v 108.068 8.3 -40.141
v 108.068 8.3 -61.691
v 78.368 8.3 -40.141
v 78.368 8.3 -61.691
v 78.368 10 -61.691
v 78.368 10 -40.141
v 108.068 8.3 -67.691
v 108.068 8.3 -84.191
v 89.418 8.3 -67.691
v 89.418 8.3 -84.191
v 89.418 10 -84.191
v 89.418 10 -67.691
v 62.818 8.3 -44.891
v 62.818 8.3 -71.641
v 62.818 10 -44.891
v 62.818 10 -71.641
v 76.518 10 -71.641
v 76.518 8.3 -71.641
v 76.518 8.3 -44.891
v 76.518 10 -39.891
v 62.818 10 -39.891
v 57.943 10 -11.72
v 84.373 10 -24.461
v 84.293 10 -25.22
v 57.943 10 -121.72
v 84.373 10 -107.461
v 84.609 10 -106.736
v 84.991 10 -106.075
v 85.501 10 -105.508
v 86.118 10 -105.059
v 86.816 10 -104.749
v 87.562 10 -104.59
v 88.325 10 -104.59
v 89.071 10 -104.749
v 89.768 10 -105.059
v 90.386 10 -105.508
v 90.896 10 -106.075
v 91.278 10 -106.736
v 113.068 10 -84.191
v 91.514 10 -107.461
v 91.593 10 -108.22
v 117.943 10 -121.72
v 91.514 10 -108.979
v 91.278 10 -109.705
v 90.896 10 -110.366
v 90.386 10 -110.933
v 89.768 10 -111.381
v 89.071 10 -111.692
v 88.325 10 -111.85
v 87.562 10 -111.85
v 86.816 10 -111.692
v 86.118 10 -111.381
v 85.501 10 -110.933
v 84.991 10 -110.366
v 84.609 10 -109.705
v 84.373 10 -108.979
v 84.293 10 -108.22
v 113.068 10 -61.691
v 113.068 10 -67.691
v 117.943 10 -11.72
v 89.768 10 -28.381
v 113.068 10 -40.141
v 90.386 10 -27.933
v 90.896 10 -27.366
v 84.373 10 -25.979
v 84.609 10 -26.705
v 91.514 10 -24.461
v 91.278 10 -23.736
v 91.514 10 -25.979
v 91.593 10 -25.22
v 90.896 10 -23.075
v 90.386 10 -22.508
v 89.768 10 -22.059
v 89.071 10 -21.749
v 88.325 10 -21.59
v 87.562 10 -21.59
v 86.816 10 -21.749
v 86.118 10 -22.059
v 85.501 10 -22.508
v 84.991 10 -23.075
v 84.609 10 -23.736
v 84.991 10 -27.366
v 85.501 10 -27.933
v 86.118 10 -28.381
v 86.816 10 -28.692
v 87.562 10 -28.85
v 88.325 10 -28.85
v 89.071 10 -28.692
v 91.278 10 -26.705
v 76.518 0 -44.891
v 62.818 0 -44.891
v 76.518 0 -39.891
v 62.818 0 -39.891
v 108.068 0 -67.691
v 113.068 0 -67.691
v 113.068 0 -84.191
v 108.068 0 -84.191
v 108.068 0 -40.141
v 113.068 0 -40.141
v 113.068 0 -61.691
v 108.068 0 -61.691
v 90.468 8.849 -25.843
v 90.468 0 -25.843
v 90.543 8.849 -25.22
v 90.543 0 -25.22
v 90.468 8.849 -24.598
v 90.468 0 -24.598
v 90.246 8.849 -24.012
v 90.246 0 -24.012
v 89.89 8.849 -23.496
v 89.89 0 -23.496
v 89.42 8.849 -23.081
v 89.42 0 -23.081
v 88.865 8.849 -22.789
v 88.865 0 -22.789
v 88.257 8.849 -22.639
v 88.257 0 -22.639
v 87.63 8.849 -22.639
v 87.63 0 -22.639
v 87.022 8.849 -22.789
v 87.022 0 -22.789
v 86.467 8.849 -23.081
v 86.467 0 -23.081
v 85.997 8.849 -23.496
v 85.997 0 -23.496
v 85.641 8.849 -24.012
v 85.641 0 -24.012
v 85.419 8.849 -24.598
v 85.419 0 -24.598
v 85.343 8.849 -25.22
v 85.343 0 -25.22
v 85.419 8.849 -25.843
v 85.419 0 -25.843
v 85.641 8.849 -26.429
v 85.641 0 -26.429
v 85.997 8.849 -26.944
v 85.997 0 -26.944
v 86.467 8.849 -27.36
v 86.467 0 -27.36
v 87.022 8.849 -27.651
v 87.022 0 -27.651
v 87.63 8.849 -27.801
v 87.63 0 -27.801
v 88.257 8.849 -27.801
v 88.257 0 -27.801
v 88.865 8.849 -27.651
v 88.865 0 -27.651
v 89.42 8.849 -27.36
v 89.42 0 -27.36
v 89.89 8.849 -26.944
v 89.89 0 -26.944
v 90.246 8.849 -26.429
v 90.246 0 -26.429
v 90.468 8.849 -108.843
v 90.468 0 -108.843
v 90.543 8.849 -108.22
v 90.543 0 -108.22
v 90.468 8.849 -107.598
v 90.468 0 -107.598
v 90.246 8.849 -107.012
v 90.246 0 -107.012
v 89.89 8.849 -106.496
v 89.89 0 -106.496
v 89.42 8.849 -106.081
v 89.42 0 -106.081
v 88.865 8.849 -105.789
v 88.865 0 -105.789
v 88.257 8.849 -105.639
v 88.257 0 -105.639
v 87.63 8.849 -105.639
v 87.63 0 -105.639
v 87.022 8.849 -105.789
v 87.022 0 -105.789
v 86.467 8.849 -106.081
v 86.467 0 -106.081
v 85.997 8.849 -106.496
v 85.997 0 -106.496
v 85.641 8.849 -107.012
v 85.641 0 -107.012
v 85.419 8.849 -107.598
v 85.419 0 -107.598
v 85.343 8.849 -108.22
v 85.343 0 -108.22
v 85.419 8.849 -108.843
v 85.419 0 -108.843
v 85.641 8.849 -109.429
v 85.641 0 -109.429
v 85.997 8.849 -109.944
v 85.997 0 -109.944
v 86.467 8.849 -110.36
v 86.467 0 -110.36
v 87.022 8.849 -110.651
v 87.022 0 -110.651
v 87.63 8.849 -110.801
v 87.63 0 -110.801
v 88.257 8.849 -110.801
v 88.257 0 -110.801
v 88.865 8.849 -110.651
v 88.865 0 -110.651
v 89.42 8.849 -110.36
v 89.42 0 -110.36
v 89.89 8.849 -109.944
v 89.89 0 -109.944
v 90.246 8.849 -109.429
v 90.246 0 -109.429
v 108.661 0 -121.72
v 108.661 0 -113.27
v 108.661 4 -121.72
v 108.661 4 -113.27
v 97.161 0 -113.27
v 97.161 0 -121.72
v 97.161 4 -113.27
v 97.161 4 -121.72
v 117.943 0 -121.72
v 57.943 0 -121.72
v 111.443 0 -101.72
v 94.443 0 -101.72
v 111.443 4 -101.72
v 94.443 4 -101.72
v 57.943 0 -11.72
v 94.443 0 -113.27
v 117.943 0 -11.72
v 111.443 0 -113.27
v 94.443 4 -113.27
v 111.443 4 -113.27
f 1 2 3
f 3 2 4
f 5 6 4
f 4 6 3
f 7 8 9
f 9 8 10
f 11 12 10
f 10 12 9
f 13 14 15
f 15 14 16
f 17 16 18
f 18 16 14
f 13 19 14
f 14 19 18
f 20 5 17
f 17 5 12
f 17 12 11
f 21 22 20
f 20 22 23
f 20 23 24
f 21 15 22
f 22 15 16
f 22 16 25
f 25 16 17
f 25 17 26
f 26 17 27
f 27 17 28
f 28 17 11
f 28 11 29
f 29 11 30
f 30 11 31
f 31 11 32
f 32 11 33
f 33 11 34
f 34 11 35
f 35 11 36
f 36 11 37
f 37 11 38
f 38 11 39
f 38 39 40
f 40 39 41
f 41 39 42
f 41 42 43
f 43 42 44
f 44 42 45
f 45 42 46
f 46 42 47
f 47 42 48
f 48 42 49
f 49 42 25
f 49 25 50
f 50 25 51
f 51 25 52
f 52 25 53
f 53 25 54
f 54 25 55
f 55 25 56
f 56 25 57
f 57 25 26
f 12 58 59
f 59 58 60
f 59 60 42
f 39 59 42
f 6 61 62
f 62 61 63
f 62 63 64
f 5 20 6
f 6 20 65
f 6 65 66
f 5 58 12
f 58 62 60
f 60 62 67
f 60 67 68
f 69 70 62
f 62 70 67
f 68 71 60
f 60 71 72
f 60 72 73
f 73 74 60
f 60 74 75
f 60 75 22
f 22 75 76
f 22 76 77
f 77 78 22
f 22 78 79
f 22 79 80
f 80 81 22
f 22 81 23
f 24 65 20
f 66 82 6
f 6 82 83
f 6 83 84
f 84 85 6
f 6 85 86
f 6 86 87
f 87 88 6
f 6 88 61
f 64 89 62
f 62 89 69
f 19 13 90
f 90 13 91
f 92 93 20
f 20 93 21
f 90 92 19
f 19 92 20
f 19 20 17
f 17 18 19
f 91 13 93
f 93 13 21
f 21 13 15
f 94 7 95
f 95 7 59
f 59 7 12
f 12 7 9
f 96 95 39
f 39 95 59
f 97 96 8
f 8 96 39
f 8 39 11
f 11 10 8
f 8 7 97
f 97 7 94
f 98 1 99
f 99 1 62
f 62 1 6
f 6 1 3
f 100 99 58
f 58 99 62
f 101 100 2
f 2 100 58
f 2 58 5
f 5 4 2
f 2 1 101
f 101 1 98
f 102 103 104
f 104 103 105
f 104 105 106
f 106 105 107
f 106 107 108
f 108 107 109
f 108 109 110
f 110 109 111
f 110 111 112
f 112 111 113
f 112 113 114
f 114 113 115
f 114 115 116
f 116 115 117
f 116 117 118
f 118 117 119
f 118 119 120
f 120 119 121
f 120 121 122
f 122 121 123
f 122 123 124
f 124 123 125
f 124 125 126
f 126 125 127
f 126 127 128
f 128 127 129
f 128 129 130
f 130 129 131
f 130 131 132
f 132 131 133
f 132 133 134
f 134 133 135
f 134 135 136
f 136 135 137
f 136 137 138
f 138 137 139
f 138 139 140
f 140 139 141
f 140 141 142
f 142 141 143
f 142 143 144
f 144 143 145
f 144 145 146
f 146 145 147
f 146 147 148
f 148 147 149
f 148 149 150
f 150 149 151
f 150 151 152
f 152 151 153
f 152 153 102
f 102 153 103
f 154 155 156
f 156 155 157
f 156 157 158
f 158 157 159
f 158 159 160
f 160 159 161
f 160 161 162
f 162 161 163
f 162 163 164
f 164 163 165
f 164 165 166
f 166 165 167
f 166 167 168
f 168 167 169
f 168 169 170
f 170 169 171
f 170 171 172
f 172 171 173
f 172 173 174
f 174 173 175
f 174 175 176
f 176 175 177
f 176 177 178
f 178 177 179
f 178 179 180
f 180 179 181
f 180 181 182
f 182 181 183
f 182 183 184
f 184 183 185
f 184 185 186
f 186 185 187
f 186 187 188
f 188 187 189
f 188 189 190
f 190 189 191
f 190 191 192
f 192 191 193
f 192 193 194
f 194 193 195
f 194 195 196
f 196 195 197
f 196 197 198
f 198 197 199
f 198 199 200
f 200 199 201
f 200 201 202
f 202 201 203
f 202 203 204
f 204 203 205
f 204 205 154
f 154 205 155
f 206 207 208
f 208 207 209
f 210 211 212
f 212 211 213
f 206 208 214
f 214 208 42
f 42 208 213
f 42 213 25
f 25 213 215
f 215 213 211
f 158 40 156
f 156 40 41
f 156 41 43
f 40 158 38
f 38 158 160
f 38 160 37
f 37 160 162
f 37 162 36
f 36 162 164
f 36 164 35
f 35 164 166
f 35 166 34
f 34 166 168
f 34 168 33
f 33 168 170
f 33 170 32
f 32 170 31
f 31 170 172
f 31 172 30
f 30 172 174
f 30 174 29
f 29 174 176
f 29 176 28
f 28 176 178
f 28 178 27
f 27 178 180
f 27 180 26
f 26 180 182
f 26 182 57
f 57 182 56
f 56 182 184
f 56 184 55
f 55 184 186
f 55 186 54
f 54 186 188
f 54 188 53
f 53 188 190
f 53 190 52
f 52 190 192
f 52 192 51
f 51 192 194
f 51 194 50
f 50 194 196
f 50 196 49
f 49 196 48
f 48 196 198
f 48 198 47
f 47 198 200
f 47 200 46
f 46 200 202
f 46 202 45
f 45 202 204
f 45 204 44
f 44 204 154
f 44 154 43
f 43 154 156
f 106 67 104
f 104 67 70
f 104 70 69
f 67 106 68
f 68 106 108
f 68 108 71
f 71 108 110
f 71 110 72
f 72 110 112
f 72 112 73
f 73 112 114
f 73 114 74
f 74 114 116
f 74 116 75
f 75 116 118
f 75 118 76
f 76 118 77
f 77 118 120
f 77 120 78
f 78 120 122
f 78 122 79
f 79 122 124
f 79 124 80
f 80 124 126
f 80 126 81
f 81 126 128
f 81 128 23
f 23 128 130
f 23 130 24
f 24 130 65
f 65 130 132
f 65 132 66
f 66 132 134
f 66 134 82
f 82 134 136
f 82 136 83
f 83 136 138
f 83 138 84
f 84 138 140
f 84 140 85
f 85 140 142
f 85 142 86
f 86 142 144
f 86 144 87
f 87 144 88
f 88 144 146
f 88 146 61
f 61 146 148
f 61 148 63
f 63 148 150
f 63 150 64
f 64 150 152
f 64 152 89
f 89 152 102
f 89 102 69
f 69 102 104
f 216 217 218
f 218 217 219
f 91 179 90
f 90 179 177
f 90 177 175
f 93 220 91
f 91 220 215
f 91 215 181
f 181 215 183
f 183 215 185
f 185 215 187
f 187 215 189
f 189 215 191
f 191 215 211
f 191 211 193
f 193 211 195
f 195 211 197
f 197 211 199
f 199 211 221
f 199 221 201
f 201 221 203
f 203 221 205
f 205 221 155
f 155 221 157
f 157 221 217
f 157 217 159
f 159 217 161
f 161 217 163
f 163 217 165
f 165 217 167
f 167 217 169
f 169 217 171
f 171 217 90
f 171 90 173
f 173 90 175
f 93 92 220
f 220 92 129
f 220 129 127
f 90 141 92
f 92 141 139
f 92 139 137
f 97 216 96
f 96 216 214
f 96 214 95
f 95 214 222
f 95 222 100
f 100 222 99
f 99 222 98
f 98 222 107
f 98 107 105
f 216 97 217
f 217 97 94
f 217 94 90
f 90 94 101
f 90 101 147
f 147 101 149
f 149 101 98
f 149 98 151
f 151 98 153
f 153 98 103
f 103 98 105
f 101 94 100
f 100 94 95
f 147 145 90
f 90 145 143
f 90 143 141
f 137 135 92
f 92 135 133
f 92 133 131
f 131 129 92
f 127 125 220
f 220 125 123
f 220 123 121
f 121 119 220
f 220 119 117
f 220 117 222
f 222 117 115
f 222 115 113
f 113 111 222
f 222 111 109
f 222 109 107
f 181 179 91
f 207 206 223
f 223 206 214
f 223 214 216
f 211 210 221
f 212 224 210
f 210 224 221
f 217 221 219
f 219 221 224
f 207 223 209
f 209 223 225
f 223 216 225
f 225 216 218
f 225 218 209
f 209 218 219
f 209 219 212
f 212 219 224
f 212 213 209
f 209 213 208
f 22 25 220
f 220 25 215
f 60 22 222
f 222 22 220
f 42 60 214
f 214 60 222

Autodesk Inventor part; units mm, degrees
ref_plane "작업 평면1" through (0, 10, 0) normal (0, 1, 0) x (1, 0, 0)
sketch "스케치3" plane through (0, 10, 0) normal (0, 1, 0) x (1, 0, 0)
  line L0 (108.4435, 113.2704) -> (97.4435, 113.2704)
  line L1 (97.4435, 113.2704) -> (97.4435, 121.7204)
  line L2 (97.4435, 121.7204) -> (108.4435, 121.7204)
  line L3 (108.4435, 121.7204) -> (108.4435, 113.2704)
  line L4 (117.9435, 121.7204) -> (57.9435, 121.7204)
  line L5 (57.9435, 121.7204) -> (57.9435, 11.7204)
  line L6 (117.9435, 11.7204) -> (117.9435, 121.7204)
  line L7 (57.9435, 11.7204) -> (117.9435, 11.7204)
  line L8 (113.0685, 67.6907) -> (89.4185, 67.6907)
  line L9 (89.4185, 67.6907) -> (89.4185, 84.1907)
  line L10 (89.4185, 84.1907) -> (113.0685, 84.1907)
  line L11 (113.0685, 84.1907) -> (113.0685, 67.6907)
  line L12 (113.0684, 40.1407) -> (108.0685, 40.1407)
  line L13 (108.0685, 67.6907) -> (113.0685, 67.6907)
  line L14 (113.0684, 61.6907) -> (113.0684, 40.1407)
  line L15 (113.0685, 67.6907) -> (108.0685, 67.6907)
  line L16 (108.0685, 67.6907) -> (108.0685, 84.1907)
  line L17 (108.0685, 84.1907) -> (113.0685, 84.1907)
  line L18 (113.0685, 84.1907) -> (113.0685, 67.6907)
  line L19 (76.5185, 39.8907) -> (62.8185, 39.8907)
  line L20 (62.8185, 39.8907) -> (62.8185, 44.8907)
  line L21 (62.8185, 44.8907) -> (76.5185, 44.8907)
  line L22 (76.5185, 44.8907) -> (76.5185, 39.8907)
  line L23 (113.0684, 61.6907) -> (78.3675, 61.6907)
  circle A0 centre (87.9435, 25.2204) radius 2.6
  circle A1 centre (87.9435, 108.2204) radius 2.6
  line L24 (78.3675, 40.1407) -> (113.0684, 40.1407)
  line L25 (78.3675, 40.1407) -> (78.3675, 61.6907)
  line L26 (76.5185, 39.8907) -> (76.5185, 71.6407)
  line L27 (62.8185, 39.8907) -> (62.8185, 71.6407)
  line L28 (76.5185, 71.6407) -> (62.8185, 71.6407)
  line L29 (108.0685, 61.6907) -> (108.0685, 40.1407)
  point P0 (0, 0)
  dimension "d8" = 9.5
  dimension "d46" = 5.2
  dimension "d47" = 5.2
extrude "돌출2" add sketch "스케치3" against normal blind 10 contours L3 L4 L6 L7 L5 L1 L0 | L0 L1 L2 L3 | L8 L16 L10 L11 | L8 L9 L10 L16 | L12 L29 L23 L14 | L24 L25 L23 L29 | L19 L20 L21 L22 | L21 L27 L28 L26 | A0 | A1
sketch "스케치4" plane through (0, 10, 0) normal (0, 1, 0) x (1, 0, 0)
  point P0 (0, 0)
sketch "스케치5" plane through (117.9435, 10, -121.7204) normal (0, 0, -1) x (-1, 0, 0)
  point P0 (117.9435, -10)
extrude "돌출5" cut sketch "스케치3" against normal through all contours L0 L1 L2 L3
sketch "스케치6" plane through (0, 0, 0) normal (0, -1, 0) x (1, 0, 0)
  line L0 (57.9435, -121.7204) -> (97.4435, -121.7204) projected
  line L1 (97.4435, -121.7204) -> (57.9435, -121.7204) projected
  line L2 (113.0685, -71.6204) -> (108.0685, -71.6204) projected
  line L3 (113.0685, -80.2704) -> (113.0685, -71.6204) projected
  line L4 (78.3685, -80.2704) -> (113.0685, -80.2704) projected
  line L5 (78.3685, -58.4704) -> (78.3685, -80.2704) projected
  line L6 (113.0685, -58.4704) -> (78.3685, -58.4704) projected
  line L7 (113.0685, -67.1204) -> (113.0685, -58.4704) projected
  line L8 (108.0685, -67.1204) -> (113.0685, -67.1204) projected
  line L9 (108.0685, -71.6204) -> (108.0685, -67.1204) projected
  line L10 (117.9435, -121.7204) -> (108.4435, -121.7204) projected
  line L11 (111.4435, -108.7204) -> (94.443, -108.7204)
  line L12 (111.4435, -108.7204) -> (111.4435, -113.2704)
  line L13 (94.443, -108.7204) -> (94.443, -113.2704)
  line L14 (111.4435, -113.2704) -> (94.443, -113.2704)
  point P0 (0, 0)
sketch "스케치7" plane through (0, 0, 0) normal (0, -1, 0) x (1, 0, 0)
  point P0 (0, 0)
sketch "스케치8" plane through (0, 0, 0) normal (0, -1, 0) x (1, 0, 0)
  point P0 (0, 0)
extrude "돌출6" cut sketch "스케치6" against normal blind 4 contours L12 L14 L13 L11
extrude "돌출7" add sketch "스케치3" against normal blind 6 contours L0 L1 L2 L3
sketch "스케치9" plane through (0, 0, 0) normal (0, -1, 0) x (1, 0, 0)
  line L0 (111.4435, -108.7204) -> (111.4435, -113.2704) projected
  line L1 (111.4435, -108.7204) -> (111.4435, -101.7204)
  line L2 (111.4435, -101.7204) -> (94.443, -101.7204)
  line L3 (94.443, -113.2704) -> (94.443, -108.7204) projected
  line L4 (94.443, -101.7204) -> (94.443, -108.7204)
  line L5 (94.443, -108.7204) -> (111.4435, -108.7204) projected
  line L6 (111.4435, -108.7204) -> (94.443, -108.7204)
  point P0 (0, 0)
  dimension "d25" = 7
extrude "돌출8" cut sketch "스케치9" against normal blind 4
sketch "스케치10" plane through (0, 10, 0) normal (0, 1, 0) x (1, 0, 0)
  circle A0 centre (87.9435, 25.2204) radius 3.85
  circle A1 centre (87.9435, 108.2204) radius 3.85
  point P0 (0, 0)
  dimension "d28" = 7.7
  dimension "d29" = 7.7
ref_plane "작업 평면2" through (0, 10, 0) normal (0, 1, 0) x (1, 0, 0)
sketch "스케치12" plane through (0, 10, 0) normal (0, 1, 0) x (1, 0, 0)
  point P0 (0, 0)
ref_plane "작업 평면3" through (57.9435, 10, -25.2204) normal (0, 0, 1) x (1, 0, 0)
sketch "스케치13" plane through (57.9435, 10, -25.2204) normal (0, 0, 1) x (1, 0, 0)
  line L0 (30, 0) -> (30, -4)
  line L1 (30, 0) -> (33.65, 0)
  line L2 (33.65, 0) -> (30, -4)
  point P0 (-57.9435, -10)
  point P1 (32.25, 0)
  dimension "d35" = 4
  dimension "d36" = 3.65
sketch "스케치14" plane through (57.9435, 10, -25.2204) normal (0, 0, 1) x (1, 0, 0)
  point P0 (-57.9435, -10)
revolve "회전2" cut sketch "스케치13" angle 360 about axis through (87.9435, 10, -25.2204) along (0, -1, 0)
ref_plane "작업 평면4" through (57.9435, 10, -66.7204) normal (0, 0, 1) x (1, 0, 0)
mirror "미러1" about plane through (57.9435, 10, -66.7204) normal (0, 0, 1) of "회전2"
sketch "스케치15" plane through (0, 0, 0) normal (0, -1, 0) x (1, 0, 0)
  line L0 (108.6612, -121.7204) -> (97.1612, -121.7204)
  line L1 (97.1612, -121.7204) -> (97.1612, -113.2704)
  line L2 (108.6612, -121.7204) -> (108.6612, -113.2704)
  line L3 (97.1612, -113.2704) -> (108.6612, -113.2704)
  line L4 (97.4435, -113.2704) -> (94.443, -113.2704) projected
  point P0 (0, 0)
extrude "돌출9" cut sketch "스케치15" against normal blind 4
extrude "돌출11" cut sketch "스케치3" against normal through all contours A0 | A1
extrude "돌출12" cut sketch "스케치3" against normal through all contours L8 L16 L10 L11 | L12 L29 L23 L14 | L19 L20 L21 L22
extrude "돌출13" cut sketch "스케치3" against normal blind 1.7 contours L8 L9 L10 L16 | L24 L25 L23 L29 | L21 L27 L28 L26
properties part number "1구버전"
